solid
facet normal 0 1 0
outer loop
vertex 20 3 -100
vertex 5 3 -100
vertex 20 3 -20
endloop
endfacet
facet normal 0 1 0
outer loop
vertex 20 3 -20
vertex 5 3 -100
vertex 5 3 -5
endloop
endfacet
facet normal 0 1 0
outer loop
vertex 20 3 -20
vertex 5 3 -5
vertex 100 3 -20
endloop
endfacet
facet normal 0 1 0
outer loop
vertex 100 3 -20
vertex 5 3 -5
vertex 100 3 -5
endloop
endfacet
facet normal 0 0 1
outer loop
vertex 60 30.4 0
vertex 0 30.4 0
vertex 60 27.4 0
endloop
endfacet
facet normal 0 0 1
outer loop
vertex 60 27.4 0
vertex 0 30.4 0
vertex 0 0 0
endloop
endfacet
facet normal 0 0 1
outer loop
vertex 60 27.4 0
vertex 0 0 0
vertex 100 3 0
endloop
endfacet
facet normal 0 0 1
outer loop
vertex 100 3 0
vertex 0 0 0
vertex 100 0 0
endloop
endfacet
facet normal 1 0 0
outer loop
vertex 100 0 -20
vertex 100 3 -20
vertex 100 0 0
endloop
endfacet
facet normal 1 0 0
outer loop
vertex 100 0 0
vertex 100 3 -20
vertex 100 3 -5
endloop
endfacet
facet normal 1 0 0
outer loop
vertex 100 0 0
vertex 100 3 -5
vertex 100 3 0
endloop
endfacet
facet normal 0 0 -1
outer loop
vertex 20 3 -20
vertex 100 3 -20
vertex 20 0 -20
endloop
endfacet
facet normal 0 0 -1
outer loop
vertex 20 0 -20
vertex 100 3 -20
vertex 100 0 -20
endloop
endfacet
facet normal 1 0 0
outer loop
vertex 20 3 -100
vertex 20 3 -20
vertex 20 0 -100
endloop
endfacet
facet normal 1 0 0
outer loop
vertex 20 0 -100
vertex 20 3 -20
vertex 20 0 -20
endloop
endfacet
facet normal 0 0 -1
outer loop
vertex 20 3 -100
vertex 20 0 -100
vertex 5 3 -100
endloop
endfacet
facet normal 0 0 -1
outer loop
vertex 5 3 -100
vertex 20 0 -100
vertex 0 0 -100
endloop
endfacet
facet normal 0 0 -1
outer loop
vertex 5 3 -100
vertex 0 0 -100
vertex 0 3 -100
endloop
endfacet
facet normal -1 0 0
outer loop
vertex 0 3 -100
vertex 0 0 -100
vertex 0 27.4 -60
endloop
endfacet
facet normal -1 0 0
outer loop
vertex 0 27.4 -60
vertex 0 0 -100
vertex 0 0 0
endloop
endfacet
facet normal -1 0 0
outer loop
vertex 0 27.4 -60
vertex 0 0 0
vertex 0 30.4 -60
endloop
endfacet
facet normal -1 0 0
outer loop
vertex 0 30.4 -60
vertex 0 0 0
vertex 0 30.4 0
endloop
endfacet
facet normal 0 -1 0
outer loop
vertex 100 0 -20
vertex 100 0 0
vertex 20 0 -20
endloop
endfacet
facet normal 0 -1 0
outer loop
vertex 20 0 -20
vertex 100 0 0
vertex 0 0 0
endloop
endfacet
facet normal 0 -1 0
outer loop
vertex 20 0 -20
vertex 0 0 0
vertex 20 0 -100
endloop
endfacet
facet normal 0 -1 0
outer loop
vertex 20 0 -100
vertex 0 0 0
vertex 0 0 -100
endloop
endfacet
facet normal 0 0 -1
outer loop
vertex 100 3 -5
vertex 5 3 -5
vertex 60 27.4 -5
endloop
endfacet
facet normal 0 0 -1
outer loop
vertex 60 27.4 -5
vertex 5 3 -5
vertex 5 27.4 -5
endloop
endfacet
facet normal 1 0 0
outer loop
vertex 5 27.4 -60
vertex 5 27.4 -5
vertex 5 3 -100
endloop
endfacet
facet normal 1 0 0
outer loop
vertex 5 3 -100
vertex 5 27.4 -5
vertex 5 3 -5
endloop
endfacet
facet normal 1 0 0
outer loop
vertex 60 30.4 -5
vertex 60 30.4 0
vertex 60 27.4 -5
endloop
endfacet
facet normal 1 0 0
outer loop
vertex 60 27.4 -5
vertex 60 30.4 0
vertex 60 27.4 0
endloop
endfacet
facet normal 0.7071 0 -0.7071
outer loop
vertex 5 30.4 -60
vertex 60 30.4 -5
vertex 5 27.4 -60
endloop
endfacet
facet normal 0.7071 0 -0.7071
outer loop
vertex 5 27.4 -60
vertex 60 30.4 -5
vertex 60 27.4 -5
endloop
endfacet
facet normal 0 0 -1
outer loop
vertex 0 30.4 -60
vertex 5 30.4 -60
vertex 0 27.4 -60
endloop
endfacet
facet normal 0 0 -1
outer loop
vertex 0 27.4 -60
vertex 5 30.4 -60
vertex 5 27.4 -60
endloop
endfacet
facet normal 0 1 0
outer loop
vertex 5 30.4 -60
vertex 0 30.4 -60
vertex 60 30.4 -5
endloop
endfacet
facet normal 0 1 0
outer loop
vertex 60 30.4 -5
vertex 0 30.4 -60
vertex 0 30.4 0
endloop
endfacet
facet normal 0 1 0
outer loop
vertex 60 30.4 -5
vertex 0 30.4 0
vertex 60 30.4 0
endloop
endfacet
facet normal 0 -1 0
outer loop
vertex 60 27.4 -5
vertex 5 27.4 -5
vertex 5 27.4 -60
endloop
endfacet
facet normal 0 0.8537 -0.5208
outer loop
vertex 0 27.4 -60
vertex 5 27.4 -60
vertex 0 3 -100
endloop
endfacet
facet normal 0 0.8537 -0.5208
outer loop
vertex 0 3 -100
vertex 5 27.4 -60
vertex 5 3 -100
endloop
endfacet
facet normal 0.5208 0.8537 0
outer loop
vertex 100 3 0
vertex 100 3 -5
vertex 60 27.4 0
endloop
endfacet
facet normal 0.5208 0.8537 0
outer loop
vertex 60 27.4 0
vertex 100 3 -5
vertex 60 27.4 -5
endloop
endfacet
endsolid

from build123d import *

# Parameters (mm, degrees)
BOSS_EXTRUDE1_DEPTH = 3
BOSS_EXTRUDE2_DEPTH = 24.4
BOSS_EXTRUDE3_DEPTH = 3
CUT_EXTRUDE2_DEPTH  = 101
CUT_EXTRUDE3_DEPTH  = 101


with BuildPart() as part:
    # Sketch1 → Boss-Extrude1 (new body)
    with BuildSketch(Plane(origin=(0, 0, 0), x_dir=(1, 0, 0), z_dir=(0, 1, 0))):
        Polygon((0, 0), (0, 100), (20, 100), (20, 20), (100, 20), (100, 0), align=None)
    extrude(amount=BOSS_EXTRUDE1_DEPTH)

    # Sketch2 → Boss-Extrude2 (add)
    with BuildSketch(Plane(origin=(0, 3, 0), x_dir=(1, 0, 0), z_dir=(0, 1, 0))):
        Polygon((0, 100), (0, 0), (100, 0), (100, 5), (5, 5), (5, 100), align=None)
    extrude(amount=BOSS_EXTRUDE2_DEPTH)

    # Sketch3 → Boss-Extrude3 (add)
    with BuildSketch(Plane(origin=(0, 27.4, 0), x_dir=(1, 0, 0), z_dir=(0, 1, 0))):
        Polygon((0, 0), (0, 60), (5, 60), (60, 5), (60, 0), align=None)
    extrude(amount=BOSS_EXTRUDE3_DEPTH)

    # Sketch4 → Cut-Extrude2 (cut, through all)
    with BuildSketch(Plane.ZY):
        Polygon((-60, 27.4), (-100, 3), (-100, 27.4), align=None)
    extrude(amount=-CUT_EXTRUDE2_DEPTH, mode=Mode.SUBTRACT)

    # Sketch5 → Cut-Extrude3 (cut, through all)
    with BuildSketch(Plane.XY):
        Polygon((60, 27.4), (100, 3), (100, 27.4), align=None)
    extrude(amount=-CUT_EXTRUDE3_DEPTH, mode=Mode.SUBTRACT)


solid = part.part
